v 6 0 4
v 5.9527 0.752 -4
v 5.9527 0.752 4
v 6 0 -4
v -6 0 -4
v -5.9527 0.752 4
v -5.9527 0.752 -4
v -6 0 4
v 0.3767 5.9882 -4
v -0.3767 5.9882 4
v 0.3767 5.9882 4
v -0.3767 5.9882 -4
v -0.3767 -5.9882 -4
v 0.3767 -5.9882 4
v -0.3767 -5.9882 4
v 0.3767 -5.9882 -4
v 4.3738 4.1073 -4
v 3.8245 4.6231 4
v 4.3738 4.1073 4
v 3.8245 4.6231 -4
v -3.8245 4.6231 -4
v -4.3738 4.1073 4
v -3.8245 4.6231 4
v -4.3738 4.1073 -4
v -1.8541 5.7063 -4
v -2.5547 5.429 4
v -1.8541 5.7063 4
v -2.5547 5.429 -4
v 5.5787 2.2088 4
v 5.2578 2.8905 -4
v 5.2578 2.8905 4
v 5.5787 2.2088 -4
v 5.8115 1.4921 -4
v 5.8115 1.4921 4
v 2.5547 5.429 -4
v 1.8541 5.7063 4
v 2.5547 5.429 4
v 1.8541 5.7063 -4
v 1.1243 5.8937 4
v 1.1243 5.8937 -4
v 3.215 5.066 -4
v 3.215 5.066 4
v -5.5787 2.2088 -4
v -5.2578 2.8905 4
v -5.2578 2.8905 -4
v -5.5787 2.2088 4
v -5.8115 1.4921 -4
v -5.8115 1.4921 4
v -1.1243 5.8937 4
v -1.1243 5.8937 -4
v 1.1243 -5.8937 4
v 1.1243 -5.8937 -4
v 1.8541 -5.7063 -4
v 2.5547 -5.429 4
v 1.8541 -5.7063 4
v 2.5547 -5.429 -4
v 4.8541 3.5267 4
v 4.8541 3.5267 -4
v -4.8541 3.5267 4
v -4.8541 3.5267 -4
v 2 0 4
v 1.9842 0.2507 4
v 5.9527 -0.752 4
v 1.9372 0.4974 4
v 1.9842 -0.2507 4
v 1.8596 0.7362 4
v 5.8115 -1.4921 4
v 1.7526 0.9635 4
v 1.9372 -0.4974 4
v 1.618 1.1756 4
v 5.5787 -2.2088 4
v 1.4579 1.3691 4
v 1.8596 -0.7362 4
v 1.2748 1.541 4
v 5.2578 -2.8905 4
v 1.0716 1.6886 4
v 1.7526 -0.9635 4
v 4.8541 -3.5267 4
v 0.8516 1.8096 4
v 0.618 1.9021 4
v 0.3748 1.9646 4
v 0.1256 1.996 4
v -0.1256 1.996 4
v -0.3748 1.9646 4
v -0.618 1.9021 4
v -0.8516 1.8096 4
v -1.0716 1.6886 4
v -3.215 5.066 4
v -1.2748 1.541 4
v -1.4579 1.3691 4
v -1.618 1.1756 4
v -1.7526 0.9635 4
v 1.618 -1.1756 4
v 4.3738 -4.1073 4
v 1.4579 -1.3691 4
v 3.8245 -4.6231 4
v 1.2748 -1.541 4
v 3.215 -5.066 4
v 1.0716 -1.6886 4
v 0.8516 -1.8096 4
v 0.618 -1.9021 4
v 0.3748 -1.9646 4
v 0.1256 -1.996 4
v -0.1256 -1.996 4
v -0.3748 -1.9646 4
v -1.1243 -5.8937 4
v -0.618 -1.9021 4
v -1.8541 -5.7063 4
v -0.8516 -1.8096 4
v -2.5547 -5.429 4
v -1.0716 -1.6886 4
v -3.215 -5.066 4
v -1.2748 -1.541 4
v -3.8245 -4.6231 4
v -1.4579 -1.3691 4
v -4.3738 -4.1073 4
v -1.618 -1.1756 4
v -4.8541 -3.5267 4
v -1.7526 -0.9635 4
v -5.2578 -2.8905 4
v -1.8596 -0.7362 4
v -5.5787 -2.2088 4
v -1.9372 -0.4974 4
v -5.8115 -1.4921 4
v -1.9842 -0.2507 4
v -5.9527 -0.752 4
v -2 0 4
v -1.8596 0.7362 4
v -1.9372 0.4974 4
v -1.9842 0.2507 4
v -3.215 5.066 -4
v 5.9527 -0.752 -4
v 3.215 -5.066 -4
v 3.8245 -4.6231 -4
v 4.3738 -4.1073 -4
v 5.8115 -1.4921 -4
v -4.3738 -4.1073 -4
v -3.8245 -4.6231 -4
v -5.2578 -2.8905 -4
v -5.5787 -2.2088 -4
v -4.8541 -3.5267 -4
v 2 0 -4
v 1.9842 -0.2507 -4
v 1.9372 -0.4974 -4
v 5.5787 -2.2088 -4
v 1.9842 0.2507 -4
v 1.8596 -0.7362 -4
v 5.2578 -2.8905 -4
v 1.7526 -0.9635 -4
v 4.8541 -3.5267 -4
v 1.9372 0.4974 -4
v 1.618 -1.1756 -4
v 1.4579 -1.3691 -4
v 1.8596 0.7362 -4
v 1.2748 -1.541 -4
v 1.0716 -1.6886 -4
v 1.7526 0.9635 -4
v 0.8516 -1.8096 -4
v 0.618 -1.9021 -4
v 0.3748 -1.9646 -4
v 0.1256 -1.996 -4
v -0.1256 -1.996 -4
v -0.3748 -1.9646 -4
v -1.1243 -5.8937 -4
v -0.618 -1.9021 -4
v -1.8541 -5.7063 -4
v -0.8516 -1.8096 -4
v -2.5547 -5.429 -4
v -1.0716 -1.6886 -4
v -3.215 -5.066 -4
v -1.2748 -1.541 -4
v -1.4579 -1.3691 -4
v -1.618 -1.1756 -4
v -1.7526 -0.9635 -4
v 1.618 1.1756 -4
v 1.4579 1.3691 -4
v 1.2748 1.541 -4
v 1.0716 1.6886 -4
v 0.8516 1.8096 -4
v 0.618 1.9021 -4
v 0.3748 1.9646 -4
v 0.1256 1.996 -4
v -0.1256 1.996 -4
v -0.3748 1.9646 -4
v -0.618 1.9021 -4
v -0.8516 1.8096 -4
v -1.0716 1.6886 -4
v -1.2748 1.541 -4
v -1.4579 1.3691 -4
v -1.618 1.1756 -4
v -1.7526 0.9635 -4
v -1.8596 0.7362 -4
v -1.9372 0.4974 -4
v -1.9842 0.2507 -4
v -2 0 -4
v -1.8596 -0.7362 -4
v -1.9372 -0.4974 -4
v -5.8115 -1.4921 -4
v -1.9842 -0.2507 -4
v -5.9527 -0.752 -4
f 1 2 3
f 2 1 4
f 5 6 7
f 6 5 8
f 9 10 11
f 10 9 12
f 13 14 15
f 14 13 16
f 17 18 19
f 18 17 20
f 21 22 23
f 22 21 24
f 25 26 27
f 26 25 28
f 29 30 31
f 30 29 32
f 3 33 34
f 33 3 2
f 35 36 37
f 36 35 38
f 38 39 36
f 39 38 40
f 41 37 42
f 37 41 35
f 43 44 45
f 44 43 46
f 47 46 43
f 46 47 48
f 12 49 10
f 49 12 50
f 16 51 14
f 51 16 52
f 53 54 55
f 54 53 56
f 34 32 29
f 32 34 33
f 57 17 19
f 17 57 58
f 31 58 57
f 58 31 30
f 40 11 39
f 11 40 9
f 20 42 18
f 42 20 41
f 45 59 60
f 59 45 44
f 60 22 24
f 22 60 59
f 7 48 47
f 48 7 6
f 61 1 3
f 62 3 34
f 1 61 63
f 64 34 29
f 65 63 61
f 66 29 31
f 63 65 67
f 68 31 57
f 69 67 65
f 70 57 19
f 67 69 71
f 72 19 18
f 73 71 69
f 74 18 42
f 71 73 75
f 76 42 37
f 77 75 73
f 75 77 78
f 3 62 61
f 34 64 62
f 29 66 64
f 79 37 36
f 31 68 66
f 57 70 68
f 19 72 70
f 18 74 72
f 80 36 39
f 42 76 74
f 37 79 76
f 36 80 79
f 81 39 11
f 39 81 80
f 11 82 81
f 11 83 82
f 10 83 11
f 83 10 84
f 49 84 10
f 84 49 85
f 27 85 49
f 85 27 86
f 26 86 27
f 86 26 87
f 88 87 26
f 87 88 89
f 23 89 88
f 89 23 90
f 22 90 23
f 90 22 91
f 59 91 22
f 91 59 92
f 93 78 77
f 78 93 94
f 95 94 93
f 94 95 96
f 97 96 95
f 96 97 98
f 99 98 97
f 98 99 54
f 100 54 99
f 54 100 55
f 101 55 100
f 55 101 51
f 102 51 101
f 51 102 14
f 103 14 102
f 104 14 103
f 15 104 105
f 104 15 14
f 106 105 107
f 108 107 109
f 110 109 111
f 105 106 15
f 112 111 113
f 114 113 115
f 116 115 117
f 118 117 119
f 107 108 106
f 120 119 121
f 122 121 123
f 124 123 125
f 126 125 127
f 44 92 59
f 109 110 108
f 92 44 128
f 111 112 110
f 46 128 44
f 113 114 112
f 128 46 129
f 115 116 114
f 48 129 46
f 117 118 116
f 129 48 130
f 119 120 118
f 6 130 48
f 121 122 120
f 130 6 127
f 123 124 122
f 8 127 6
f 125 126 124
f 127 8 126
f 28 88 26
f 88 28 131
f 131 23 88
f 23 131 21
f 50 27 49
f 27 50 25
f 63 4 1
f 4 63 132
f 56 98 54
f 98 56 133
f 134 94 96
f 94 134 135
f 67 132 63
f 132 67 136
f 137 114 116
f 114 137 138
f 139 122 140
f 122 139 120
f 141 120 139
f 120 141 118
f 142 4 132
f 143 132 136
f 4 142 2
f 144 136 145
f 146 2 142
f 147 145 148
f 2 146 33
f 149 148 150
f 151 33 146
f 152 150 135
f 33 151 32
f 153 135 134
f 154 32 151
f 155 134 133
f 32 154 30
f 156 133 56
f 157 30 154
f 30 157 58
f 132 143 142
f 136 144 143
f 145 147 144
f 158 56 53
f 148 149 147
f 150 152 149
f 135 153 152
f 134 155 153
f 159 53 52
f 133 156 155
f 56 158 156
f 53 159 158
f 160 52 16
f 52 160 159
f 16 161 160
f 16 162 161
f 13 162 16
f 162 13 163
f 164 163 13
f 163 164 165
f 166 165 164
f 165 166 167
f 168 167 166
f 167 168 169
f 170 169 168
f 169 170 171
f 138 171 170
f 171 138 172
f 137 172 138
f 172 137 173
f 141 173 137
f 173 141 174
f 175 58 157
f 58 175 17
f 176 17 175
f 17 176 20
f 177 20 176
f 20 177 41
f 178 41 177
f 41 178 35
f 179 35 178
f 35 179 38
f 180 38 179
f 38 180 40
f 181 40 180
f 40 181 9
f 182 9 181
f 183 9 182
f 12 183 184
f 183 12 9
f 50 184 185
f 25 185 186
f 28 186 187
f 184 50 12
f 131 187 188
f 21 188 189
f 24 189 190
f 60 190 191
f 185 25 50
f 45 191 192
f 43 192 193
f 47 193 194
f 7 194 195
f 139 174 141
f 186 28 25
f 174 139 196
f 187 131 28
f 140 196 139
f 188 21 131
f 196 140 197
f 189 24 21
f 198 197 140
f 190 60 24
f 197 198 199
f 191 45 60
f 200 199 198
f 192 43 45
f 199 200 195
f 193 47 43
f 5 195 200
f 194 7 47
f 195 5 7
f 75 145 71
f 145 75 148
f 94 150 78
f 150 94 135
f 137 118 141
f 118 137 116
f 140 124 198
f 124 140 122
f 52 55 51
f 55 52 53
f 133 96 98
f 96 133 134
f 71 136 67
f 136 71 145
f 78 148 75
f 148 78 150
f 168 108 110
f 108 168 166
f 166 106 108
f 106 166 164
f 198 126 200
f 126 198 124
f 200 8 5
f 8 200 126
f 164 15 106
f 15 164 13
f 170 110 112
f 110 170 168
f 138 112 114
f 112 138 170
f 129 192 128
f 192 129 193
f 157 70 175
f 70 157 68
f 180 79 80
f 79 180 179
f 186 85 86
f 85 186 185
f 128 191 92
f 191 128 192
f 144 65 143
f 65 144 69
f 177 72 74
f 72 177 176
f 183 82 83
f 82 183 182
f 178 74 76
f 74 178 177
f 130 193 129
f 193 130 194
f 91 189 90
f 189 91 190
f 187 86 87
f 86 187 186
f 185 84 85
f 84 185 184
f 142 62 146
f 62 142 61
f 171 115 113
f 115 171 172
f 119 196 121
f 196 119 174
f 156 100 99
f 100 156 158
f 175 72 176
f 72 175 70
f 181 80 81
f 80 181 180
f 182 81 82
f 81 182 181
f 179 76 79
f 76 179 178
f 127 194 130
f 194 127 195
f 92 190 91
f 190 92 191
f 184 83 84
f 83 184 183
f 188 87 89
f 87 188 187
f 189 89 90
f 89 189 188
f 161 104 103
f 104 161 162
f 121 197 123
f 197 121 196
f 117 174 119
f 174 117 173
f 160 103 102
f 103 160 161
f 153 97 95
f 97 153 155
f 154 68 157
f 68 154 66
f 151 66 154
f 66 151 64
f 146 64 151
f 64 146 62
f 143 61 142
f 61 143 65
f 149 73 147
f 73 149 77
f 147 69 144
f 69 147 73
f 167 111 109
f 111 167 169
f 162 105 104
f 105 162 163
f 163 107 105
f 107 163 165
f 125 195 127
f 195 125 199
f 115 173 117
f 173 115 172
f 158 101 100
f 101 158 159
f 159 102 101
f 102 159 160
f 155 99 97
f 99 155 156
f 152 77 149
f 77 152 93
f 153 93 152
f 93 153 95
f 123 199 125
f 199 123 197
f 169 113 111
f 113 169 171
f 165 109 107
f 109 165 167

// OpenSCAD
$fn = 50;


difference() {
	union() {
		translate(v = [0, 0, -4.0000000000]) {
			cylinder(h = 8, r = 6.0000000000);
		}
	}
	union() {
		translate(v = [0, 0, -100.0000000000]) {
			cylinder(h = 200, r = 2);
		}
	}
}
